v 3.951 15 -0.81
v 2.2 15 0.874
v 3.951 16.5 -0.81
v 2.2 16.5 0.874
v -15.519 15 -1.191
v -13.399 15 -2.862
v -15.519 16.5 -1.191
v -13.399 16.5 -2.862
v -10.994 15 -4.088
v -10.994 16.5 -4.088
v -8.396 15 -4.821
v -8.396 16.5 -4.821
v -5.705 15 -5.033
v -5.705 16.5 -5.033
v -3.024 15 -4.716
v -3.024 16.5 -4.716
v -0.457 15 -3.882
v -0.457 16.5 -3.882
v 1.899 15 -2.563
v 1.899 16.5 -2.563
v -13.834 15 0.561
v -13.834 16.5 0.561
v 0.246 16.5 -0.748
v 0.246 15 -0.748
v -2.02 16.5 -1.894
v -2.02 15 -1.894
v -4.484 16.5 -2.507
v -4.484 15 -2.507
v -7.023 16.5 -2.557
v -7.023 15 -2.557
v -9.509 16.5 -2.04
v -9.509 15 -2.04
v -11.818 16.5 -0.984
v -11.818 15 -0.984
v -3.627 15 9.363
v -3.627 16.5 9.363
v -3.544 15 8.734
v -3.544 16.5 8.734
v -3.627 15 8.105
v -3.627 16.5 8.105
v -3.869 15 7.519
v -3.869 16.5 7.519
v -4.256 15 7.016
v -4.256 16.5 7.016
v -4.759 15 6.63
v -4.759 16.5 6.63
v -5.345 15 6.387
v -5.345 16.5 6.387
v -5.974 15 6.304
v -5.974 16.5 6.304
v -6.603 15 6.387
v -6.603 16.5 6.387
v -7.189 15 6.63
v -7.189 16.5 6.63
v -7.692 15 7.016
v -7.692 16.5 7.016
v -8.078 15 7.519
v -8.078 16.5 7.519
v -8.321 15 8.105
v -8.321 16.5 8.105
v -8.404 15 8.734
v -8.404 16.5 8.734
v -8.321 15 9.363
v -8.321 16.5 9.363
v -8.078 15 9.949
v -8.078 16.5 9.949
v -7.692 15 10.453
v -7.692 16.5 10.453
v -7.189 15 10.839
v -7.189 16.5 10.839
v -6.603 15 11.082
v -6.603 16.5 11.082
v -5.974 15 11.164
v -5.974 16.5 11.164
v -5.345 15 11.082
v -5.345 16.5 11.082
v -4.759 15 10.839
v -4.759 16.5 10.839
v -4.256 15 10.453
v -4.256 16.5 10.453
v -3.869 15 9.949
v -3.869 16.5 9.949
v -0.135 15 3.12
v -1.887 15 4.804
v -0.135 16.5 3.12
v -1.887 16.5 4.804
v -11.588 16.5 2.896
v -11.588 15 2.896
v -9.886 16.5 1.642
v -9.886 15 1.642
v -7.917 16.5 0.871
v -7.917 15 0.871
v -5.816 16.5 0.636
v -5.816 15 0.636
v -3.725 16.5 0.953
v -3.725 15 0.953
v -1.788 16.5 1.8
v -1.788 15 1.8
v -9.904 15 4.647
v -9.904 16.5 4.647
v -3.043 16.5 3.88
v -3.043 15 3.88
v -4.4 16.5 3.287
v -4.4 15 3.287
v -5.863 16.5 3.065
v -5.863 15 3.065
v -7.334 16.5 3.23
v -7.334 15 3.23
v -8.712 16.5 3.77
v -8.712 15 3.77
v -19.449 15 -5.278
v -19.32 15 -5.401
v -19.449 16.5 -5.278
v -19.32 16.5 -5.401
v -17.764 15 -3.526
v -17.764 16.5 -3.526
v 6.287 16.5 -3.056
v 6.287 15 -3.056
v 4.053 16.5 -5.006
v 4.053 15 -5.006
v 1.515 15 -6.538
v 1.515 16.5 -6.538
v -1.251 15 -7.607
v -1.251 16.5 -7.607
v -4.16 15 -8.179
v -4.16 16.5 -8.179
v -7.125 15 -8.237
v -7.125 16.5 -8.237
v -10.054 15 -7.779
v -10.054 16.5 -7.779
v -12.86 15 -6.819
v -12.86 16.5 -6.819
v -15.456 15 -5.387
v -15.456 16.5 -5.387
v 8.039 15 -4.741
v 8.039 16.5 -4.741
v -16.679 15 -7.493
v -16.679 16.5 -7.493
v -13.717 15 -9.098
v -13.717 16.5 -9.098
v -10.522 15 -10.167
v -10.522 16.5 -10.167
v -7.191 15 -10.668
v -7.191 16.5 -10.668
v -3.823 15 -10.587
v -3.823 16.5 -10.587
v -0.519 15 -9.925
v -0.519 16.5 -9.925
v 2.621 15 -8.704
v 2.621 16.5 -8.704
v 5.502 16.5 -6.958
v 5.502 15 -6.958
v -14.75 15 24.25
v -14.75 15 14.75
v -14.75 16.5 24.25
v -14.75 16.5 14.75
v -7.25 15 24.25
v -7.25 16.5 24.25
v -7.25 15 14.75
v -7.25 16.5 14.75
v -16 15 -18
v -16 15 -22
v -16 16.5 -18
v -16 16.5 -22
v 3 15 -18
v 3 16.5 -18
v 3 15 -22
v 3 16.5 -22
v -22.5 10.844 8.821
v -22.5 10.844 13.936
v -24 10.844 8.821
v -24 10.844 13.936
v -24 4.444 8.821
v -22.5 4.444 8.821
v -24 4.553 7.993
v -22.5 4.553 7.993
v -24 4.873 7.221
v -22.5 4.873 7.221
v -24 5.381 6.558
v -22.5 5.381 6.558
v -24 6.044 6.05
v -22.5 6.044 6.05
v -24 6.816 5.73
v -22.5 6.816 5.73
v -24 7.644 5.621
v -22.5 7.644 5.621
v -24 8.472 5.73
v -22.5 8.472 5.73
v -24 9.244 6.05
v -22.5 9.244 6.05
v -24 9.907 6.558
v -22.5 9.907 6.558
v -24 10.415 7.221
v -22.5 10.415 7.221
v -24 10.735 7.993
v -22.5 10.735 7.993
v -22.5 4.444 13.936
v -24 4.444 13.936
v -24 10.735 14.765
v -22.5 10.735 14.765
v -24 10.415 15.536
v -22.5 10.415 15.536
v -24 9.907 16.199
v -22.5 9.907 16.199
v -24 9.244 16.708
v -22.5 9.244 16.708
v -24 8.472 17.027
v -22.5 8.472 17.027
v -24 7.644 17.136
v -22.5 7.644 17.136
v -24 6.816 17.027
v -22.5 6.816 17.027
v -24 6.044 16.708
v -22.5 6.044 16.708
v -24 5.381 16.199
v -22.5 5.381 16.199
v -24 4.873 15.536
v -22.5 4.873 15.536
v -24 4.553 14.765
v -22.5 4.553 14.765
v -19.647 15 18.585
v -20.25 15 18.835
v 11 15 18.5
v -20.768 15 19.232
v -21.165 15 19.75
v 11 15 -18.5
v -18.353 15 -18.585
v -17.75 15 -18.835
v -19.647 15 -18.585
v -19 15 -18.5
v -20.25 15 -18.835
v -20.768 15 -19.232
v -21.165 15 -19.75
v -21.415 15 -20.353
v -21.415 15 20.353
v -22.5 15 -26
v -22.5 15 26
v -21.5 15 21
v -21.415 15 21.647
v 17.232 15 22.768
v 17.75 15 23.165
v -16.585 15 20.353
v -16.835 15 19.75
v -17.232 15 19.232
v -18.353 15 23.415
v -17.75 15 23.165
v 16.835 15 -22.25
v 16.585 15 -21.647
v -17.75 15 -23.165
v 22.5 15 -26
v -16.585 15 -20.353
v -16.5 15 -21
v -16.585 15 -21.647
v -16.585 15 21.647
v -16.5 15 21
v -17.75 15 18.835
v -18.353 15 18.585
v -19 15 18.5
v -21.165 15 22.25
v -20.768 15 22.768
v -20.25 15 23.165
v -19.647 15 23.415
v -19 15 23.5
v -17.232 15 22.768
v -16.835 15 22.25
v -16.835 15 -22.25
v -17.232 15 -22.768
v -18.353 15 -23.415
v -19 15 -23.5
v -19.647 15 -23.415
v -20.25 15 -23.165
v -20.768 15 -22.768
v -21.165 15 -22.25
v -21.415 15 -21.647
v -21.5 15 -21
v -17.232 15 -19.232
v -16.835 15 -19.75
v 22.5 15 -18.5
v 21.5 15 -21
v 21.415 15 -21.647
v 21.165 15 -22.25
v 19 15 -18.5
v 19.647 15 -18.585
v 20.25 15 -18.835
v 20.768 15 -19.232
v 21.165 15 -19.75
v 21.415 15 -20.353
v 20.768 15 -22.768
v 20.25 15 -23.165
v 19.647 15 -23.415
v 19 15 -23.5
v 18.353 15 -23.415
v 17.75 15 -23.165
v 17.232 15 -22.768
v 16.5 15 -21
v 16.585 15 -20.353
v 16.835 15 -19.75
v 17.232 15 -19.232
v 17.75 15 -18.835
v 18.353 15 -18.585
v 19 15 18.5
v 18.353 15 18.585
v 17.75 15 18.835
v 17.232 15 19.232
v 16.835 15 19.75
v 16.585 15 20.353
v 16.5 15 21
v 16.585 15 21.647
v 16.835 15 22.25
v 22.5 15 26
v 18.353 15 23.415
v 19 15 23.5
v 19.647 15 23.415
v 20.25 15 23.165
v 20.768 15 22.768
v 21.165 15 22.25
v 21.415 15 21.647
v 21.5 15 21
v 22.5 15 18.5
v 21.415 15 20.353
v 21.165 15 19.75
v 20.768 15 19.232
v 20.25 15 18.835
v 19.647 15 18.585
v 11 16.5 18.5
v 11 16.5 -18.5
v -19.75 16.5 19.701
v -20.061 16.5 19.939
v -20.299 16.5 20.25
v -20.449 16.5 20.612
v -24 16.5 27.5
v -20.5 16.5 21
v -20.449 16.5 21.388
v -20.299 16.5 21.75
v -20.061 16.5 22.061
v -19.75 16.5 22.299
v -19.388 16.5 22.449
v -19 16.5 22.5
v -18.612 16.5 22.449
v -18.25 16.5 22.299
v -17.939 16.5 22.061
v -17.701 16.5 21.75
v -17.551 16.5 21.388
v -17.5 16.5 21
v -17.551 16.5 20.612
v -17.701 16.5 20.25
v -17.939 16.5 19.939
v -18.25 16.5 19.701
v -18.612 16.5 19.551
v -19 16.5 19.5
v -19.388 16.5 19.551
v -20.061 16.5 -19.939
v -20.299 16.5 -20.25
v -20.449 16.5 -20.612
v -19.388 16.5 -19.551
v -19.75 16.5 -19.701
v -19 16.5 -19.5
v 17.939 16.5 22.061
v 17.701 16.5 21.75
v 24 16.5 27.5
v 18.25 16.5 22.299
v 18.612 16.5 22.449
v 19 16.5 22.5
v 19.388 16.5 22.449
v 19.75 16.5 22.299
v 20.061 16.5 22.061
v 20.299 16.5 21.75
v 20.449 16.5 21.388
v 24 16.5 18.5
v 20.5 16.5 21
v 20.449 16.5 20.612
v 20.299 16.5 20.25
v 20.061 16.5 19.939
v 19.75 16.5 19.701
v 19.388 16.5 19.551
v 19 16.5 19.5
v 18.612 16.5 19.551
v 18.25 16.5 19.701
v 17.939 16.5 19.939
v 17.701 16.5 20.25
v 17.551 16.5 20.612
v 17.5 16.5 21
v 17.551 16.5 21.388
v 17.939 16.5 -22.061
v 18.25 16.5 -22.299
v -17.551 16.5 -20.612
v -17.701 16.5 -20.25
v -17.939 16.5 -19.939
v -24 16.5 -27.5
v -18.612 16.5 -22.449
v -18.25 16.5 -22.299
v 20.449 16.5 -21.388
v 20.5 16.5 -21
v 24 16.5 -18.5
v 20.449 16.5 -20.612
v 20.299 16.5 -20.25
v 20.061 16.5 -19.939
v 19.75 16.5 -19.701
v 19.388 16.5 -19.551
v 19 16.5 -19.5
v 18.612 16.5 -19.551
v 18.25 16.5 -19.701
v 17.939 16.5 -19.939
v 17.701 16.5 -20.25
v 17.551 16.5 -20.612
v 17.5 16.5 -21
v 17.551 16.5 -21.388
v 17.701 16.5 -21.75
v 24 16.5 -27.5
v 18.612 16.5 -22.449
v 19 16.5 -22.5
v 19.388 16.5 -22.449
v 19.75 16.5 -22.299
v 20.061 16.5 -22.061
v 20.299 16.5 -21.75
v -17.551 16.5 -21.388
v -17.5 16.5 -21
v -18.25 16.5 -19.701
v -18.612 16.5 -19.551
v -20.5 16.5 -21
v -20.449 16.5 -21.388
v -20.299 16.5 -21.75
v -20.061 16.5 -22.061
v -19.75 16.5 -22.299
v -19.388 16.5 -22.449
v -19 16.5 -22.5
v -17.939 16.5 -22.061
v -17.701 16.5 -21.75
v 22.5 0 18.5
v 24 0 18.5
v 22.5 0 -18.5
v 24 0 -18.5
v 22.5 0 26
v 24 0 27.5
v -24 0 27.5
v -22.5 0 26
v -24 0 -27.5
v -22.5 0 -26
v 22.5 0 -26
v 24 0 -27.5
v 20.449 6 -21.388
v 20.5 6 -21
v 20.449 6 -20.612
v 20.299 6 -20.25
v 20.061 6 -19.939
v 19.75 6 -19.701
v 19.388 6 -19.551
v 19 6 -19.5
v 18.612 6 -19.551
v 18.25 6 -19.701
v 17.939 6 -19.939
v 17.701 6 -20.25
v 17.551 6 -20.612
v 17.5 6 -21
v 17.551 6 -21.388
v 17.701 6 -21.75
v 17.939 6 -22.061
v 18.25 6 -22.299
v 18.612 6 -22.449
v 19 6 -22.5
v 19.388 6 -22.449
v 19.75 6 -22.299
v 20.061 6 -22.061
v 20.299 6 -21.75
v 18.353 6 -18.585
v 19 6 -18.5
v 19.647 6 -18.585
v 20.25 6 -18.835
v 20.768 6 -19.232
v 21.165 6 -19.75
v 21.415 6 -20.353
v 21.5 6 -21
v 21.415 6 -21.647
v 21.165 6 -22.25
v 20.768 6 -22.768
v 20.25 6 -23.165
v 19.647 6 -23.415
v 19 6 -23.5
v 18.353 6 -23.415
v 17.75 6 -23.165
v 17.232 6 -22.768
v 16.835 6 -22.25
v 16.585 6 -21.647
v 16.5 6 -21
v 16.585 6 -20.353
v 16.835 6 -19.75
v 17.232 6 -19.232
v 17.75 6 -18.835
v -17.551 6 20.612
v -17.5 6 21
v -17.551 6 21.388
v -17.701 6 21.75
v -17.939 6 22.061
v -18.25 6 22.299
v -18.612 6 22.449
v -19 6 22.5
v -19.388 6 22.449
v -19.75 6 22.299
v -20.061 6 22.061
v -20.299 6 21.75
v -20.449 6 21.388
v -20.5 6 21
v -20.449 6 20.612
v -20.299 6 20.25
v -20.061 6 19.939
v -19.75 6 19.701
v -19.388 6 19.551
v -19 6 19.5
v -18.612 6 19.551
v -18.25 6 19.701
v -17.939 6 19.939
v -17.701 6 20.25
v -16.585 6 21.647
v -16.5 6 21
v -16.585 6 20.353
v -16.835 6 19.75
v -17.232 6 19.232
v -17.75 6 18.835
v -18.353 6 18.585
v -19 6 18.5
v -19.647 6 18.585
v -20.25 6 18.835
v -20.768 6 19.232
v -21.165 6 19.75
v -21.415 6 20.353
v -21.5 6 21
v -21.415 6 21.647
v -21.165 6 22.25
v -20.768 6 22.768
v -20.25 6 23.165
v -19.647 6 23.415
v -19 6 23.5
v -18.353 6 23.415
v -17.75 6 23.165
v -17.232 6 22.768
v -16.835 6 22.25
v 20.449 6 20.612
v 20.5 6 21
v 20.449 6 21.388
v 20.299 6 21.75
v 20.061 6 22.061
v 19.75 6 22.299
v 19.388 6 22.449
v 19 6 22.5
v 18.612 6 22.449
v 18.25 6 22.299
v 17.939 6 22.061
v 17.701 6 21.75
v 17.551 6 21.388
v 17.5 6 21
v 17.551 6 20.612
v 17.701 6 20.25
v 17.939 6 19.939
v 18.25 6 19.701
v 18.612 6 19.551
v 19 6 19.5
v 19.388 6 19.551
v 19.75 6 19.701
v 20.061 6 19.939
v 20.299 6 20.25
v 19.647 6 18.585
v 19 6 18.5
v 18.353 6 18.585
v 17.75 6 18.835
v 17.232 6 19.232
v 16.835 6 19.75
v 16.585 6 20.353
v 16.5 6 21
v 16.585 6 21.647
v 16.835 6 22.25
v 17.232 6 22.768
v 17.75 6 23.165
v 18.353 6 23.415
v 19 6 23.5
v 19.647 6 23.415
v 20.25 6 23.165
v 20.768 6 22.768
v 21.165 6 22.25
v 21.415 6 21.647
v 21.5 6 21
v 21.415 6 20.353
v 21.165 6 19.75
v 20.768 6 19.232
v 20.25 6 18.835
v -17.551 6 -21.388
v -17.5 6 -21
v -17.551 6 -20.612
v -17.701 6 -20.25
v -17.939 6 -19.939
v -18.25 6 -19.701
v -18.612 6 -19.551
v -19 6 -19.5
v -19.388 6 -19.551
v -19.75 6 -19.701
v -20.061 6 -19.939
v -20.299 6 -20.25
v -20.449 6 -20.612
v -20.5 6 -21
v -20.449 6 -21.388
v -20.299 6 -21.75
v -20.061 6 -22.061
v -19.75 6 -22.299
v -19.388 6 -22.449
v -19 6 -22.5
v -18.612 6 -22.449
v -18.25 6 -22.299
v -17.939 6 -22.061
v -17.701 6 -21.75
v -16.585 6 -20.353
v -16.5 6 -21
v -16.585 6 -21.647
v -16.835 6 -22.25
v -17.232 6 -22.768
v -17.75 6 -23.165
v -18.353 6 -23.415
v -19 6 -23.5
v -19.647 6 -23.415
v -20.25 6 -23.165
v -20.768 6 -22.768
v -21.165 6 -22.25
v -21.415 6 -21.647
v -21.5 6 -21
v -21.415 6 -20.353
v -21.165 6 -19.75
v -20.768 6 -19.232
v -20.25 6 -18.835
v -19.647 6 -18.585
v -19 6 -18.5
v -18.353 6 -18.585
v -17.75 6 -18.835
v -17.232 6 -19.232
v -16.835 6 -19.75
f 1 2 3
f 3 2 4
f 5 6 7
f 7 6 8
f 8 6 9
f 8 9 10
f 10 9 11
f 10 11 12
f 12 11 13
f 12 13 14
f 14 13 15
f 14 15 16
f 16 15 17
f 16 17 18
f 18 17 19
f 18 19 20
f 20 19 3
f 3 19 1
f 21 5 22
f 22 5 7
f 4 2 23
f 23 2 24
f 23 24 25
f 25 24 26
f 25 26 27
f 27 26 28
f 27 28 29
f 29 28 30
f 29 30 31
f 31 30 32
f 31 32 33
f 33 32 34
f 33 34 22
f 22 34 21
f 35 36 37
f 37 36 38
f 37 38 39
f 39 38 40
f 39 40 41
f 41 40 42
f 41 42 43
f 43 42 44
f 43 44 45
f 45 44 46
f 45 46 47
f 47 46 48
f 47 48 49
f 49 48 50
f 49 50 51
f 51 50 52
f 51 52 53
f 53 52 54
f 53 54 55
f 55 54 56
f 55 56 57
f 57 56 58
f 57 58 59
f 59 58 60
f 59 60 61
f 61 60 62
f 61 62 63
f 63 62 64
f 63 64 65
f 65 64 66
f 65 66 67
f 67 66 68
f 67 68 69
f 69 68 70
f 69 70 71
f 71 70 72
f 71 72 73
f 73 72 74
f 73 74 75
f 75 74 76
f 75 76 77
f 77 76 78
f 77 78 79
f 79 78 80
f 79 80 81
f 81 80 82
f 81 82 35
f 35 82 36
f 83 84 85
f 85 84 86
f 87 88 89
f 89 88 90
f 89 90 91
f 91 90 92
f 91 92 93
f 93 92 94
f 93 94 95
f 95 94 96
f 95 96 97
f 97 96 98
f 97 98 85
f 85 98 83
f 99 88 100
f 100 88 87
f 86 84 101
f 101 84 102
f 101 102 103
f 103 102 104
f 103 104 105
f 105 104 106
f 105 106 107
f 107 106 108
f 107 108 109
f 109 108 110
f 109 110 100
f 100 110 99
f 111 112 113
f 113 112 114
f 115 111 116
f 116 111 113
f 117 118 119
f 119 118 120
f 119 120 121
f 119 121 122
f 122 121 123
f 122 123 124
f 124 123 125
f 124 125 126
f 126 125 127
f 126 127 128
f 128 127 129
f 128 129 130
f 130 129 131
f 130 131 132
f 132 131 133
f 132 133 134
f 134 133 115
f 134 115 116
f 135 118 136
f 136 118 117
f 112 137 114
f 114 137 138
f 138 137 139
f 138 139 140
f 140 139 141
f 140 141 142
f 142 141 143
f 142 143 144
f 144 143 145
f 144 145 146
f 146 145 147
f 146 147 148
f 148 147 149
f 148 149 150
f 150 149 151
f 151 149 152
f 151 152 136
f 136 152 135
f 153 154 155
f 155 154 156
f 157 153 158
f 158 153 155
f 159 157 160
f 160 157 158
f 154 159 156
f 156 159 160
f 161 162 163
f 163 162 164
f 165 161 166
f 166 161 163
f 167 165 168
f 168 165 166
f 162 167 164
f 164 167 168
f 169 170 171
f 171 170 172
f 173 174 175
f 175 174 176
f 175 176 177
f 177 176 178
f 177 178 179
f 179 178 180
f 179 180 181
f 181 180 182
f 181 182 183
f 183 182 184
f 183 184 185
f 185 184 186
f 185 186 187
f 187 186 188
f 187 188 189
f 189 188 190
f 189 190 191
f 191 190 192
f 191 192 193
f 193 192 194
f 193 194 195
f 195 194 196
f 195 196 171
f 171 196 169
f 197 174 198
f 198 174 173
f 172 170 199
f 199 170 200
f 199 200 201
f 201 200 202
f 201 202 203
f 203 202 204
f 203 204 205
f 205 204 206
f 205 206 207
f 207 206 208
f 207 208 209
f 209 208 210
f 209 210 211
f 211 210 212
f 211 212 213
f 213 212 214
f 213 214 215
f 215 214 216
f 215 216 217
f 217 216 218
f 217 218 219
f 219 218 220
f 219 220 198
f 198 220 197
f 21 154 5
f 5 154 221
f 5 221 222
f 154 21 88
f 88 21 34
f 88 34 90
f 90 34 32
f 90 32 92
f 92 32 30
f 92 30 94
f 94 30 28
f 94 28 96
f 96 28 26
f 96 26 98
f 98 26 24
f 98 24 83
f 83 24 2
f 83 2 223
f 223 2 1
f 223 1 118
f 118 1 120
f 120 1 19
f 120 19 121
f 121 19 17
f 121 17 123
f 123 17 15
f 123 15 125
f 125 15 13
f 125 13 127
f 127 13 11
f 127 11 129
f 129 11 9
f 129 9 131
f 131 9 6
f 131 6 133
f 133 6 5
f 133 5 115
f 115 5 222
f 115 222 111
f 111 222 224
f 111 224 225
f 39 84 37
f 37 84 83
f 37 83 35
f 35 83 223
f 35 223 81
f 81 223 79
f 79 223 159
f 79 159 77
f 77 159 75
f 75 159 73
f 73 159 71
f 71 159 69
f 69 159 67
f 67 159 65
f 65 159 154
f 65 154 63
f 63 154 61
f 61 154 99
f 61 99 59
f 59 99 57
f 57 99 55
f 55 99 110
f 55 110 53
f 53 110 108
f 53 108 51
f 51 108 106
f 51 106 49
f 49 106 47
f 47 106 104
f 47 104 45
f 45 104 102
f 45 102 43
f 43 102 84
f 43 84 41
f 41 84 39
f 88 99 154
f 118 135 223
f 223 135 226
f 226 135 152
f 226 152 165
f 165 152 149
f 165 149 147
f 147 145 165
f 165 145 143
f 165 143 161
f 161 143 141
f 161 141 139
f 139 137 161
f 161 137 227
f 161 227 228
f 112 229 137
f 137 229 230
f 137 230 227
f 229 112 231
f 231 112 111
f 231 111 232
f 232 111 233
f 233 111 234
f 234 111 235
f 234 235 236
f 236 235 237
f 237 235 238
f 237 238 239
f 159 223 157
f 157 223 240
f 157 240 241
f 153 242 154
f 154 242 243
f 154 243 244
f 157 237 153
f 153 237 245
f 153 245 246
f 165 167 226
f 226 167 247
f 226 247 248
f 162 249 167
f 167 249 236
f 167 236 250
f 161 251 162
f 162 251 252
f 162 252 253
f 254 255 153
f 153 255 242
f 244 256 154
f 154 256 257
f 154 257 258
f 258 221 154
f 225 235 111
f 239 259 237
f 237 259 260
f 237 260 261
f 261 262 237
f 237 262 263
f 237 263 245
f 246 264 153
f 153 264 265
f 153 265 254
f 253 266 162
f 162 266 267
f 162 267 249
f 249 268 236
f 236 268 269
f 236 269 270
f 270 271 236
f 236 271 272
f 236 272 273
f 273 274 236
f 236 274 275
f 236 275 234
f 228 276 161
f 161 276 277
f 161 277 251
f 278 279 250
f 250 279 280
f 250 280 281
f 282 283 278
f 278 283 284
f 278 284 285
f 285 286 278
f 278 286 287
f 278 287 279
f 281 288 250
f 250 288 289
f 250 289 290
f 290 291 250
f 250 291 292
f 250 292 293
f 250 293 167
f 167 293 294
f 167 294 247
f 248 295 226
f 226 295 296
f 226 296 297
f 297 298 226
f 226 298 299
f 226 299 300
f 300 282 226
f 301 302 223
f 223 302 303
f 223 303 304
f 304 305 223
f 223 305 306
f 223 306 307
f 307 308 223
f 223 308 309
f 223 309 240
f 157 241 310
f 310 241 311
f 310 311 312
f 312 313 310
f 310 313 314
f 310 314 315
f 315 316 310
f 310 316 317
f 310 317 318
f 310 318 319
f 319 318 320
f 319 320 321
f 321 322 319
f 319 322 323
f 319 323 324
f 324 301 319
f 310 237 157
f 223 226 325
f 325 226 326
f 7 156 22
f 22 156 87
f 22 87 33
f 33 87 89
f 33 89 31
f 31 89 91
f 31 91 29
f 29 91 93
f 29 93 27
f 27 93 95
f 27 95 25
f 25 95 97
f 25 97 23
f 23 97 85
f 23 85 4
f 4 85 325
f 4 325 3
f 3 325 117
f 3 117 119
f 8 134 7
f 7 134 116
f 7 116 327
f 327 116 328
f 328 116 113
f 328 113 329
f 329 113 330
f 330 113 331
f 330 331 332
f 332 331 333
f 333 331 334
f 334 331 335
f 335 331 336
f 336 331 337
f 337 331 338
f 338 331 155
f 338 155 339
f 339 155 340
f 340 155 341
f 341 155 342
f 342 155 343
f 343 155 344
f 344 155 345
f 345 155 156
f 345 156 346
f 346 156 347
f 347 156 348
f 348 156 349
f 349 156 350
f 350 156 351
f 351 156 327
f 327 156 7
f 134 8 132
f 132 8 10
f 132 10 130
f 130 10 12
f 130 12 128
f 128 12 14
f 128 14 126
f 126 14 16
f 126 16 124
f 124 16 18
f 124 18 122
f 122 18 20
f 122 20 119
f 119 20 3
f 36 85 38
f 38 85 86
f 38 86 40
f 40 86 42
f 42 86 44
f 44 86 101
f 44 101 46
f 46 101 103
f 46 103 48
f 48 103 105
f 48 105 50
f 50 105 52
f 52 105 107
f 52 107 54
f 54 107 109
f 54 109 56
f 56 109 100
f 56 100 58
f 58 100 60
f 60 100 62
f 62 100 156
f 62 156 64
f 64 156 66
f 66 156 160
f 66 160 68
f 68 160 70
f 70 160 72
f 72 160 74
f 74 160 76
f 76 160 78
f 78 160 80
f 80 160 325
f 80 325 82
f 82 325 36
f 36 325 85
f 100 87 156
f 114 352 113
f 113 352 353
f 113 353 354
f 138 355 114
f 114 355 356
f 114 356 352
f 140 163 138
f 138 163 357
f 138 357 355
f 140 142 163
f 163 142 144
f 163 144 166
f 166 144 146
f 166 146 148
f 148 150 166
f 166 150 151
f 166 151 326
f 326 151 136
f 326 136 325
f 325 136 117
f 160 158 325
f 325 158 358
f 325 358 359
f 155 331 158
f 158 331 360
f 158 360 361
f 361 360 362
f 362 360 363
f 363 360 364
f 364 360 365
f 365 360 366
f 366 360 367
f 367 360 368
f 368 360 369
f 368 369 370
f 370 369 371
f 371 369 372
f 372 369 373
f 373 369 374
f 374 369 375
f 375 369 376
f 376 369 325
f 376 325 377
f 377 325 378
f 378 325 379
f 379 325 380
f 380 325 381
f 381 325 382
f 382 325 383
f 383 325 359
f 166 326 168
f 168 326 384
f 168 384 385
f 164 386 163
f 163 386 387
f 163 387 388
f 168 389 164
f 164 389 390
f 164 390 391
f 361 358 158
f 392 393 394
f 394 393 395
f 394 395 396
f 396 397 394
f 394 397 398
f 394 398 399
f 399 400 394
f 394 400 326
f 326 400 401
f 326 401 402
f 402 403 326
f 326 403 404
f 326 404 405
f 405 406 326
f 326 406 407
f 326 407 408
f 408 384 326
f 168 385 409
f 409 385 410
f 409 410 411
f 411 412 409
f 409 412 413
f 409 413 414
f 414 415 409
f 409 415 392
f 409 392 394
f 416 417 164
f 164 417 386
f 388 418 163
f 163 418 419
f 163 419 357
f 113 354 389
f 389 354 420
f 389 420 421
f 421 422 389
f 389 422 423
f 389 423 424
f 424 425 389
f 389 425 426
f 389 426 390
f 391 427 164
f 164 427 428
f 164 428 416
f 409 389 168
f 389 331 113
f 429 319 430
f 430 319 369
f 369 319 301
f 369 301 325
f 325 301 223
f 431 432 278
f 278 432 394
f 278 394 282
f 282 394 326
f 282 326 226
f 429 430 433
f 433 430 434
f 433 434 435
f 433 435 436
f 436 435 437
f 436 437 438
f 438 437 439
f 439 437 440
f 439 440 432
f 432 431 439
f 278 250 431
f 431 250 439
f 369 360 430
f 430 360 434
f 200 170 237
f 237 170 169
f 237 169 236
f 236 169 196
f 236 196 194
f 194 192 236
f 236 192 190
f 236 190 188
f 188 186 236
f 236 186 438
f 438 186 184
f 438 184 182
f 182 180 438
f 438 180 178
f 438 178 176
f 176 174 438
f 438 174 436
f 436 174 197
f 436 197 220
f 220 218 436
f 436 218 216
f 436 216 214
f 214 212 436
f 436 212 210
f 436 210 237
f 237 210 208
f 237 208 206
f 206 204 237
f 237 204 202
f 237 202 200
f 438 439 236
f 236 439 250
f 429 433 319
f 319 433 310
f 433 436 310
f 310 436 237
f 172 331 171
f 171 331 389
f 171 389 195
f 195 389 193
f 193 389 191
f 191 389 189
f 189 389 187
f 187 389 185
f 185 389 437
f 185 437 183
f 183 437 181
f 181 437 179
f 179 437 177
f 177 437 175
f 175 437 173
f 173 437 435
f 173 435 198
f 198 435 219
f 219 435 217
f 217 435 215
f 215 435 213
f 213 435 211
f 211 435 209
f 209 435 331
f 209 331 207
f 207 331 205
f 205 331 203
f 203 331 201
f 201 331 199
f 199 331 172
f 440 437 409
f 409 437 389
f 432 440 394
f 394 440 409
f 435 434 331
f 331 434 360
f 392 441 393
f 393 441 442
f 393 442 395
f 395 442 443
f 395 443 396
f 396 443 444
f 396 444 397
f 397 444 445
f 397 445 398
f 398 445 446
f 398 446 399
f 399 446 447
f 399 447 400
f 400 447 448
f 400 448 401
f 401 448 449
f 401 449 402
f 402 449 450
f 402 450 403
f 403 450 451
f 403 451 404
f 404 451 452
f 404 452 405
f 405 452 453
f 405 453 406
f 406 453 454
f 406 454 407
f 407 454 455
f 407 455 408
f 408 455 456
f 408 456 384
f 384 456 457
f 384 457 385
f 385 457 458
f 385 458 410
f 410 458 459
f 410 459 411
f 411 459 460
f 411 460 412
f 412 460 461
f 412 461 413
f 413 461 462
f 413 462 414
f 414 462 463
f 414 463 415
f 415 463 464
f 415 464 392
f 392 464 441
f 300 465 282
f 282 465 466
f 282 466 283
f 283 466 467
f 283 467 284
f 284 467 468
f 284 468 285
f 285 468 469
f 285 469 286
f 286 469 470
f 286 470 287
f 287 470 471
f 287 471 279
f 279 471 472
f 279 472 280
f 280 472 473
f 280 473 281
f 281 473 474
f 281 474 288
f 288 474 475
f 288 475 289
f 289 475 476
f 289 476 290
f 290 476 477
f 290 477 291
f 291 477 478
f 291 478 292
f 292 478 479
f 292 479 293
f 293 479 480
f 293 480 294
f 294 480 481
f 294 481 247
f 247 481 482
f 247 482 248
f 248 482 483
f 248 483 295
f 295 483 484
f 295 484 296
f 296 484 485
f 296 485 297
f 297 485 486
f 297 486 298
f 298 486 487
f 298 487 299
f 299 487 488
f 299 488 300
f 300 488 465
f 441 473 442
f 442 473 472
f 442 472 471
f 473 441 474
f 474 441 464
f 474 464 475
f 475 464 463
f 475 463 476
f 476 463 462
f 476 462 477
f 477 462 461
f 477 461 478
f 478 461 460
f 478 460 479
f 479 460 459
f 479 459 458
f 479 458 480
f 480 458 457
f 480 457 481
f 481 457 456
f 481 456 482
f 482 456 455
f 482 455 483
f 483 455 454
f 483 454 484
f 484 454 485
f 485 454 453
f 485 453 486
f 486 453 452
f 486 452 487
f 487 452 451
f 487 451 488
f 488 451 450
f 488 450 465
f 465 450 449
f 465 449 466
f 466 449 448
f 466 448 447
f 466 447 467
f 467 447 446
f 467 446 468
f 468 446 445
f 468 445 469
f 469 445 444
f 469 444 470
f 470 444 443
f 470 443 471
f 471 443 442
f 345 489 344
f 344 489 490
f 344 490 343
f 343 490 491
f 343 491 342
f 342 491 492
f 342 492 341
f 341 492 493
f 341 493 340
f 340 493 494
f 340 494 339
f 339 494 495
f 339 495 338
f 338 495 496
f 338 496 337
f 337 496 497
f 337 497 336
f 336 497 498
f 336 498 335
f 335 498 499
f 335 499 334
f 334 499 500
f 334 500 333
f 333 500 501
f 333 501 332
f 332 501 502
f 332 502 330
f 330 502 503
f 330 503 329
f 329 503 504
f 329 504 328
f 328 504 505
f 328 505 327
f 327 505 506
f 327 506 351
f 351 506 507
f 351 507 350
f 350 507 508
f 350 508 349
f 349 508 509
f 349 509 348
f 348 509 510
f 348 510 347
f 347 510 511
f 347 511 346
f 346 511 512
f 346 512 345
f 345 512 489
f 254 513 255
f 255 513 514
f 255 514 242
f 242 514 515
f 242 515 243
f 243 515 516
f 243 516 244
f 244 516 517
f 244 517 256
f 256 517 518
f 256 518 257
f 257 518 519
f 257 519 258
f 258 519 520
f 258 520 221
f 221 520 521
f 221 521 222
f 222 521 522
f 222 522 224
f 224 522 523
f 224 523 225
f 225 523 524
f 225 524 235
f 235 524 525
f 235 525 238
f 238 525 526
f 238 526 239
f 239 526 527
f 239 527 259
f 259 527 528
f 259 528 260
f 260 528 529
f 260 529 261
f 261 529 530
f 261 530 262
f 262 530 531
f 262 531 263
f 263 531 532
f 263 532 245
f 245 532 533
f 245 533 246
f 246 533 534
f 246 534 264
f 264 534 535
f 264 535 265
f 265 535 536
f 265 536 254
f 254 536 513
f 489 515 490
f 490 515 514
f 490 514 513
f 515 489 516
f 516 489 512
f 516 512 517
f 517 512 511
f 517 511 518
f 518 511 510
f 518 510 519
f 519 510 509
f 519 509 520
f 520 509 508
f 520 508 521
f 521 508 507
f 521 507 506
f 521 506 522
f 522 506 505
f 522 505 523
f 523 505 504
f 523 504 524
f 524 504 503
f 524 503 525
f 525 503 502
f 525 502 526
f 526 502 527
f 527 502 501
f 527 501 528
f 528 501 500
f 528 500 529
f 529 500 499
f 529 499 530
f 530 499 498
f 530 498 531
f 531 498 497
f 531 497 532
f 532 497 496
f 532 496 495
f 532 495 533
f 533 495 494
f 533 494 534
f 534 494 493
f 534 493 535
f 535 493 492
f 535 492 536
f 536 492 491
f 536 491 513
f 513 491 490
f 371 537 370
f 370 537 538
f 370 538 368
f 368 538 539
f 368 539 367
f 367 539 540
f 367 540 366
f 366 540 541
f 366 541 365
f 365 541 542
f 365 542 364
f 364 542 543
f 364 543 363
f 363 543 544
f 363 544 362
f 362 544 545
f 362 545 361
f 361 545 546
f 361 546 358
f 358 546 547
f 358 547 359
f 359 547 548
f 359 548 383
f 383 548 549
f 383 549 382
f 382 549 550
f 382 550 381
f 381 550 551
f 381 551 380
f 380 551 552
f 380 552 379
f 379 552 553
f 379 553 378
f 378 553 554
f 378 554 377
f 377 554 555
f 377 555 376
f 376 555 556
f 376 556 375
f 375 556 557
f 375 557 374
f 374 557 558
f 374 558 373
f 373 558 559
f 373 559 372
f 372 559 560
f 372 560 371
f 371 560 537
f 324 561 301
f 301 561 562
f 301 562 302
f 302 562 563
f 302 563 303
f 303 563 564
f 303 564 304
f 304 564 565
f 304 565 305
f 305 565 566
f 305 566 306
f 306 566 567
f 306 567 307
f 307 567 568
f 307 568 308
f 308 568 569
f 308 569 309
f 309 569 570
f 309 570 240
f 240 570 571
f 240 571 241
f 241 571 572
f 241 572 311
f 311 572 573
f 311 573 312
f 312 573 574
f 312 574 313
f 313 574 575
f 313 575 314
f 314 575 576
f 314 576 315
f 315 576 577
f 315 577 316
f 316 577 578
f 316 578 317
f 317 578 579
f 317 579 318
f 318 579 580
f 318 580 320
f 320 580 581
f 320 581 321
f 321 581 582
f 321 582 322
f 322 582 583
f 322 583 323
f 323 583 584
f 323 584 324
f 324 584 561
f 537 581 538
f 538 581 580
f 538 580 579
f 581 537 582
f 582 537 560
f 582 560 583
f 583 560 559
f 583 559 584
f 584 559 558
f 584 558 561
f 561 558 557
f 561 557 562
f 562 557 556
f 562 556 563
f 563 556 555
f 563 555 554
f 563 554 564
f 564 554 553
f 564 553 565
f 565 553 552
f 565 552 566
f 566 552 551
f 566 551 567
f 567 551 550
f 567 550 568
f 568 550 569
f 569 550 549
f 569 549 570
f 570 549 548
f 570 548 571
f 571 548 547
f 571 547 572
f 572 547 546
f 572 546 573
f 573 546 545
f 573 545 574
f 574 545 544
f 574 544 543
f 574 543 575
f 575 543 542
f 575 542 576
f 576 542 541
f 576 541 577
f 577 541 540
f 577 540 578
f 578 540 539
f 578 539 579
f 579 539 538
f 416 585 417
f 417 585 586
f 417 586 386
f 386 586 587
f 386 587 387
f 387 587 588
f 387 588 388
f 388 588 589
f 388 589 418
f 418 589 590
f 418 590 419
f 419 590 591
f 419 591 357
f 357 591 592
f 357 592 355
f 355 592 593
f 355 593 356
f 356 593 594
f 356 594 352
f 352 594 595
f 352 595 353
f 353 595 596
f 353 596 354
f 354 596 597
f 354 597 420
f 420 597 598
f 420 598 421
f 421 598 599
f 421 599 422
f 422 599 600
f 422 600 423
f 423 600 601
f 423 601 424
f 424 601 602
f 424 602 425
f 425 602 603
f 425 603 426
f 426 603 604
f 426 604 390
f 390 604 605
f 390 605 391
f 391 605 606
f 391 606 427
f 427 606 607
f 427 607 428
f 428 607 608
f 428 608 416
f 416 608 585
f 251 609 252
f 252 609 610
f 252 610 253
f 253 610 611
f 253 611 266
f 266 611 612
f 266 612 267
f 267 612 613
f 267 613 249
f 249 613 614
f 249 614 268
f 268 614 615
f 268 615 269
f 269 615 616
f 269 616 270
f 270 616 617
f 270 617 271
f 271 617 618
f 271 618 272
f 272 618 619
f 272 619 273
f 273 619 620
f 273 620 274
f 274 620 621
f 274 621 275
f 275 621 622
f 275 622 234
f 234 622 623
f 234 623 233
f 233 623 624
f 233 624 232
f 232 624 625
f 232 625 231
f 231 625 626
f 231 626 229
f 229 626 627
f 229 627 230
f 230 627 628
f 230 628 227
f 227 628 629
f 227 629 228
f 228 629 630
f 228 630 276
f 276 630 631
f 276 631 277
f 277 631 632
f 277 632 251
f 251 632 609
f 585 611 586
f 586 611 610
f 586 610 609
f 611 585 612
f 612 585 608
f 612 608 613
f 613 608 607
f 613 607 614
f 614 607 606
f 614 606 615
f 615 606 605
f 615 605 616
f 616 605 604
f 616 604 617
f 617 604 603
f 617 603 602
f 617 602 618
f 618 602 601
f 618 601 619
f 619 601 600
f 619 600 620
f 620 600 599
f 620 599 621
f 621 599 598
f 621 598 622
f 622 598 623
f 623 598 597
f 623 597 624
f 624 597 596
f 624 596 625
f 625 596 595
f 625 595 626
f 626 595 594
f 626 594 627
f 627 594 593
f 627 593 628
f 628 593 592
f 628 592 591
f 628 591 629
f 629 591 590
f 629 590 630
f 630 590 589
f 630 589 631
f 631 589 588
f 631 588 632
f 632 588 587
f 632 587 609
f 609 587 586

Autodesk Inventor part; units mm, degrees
ref_plane "YZ Plane" through (0, 0, 0) normal (1, 0, 0) x (0, 1, 0)
ref_plane "XZ Plane" through (0, 0, 0) normal (0, 1, 0) x (-1, 0, 0)
ref_plane "XY Plane" through (0, 0, 0) normal (0, 0, 1) x (1, 0, 0)
sketch "Sketch1" plane through (0, 0, 0) normal (0, 1, 0) x (-1, 0, 0)
  point P0 (0, 0)
sketch "Sketch2" plane through (0, 0, 0) normal (0, 1, 0) x (-1, 0, 0)
  line L0 (-24, 27.5) -> (24, 27.5)
  line L1 (24, 27.5) -> (24, -27.5)
  line L2 (24, -27.5) -> (-24, -27.5)
  line L3 (-24, -27.5) -> (-24, 27.5)
  line L4 (22.5, 26) -> (-22.5, 26)
  line L5 (-22.5, 26) -> (-22.5, -26)
  line L6 (-22.5, -26) -> (22.5, -26)
  line L7 (22.5, -26) -> (22.5, 26)
  dimension "d1" = 55
extrude "Extrusion1" add sketch "Sketch2" along normal blind 6
sketch "Sketch3" plane through (0, 6, 0) normal (0, 1, 0) x (1, 0, 0)
  circle A0 centre (19, -21) radius 2.5
  circle A1 centre (-19, -21) radius 2.5
  circle A2 centre (-19, 21) radius 2.5
  circle A3 centre (19, 21) radius 2.5
  circle A4 centre (-19, -21) radius 1.5
  circle A5 centre (-19, 21) radius 1.5
  circle A6 centre (19, 21) radius 1.5
  circle A7 centre (19, -21) radius 1.5
  line L0 (-22.5, -26) -> (22.5, -26)
  line L1 (22.5, -26) -> (22.5, 26)
  line L2 (22.5, 26) -> (-22.5, 26)
  line L3 (-22.5, 26) -> (-22.5, -26)
  line L4 (-24, -27.5) -> (24, -27.5)
  line L5 (24, -27.5) -> (24, 27.5)
  line L6 (24, 27.5) -> (-24, 27.5)
  line L7 (-24, 27.5) -> (-24, -27.5)
  dimension "d16" = 3
  dimension "d17" = 3
  dimension "d18" = 3
extrude "Extrusion2" add sketch "Sketch3" along normal blind 9
sketch "Sketch4" plane through (24, 0, 27.5) normal (1, 0, 0) x (0, 0, -1)
  line L0 (9, 6) -> (9, 15) projected
  line L1 (9, 15) -> (46, 15)
  line L2 (55, 0) -> (0, 0) projected
  line L3 (46, 6) -> (46, 15)
  line L4 (46, 15) -> (9, 15)
  line L5 (9, 15) -> (9, 6)
  line L6 (9, 0) -> (46, 0)
  line L7 (46, 0) -> (46, 15)
  line L8 (46, 15) -> (9, 15)
  line L9 (9, 15) -> (9, 0)
  point P0 (27.5, 0)
extrude "Extrusion3" cut sketch "Sketch4" against normal up to surface (1.5 mm away)
sketch "Sketch5" plane through (0, 15, 0) normal (0, 1, 0) x (1, 0, 0)
  line L0 (-24, -27.5) -> (24, -27.5) projected
  line L1 (-24, 27.5) -> (-24, -27.5) projected
  line L2 (24, -27.5) -> (-24, -27.5)
  line L3 (-24, -27.5) -> (-24, 27.5)
  line L4 (-24, 27.5) -> (24, 27.5)
  line L5 (22.5, -18.5) -> (24, -18.5) projected
  line L6 (24, -18.5) -> (11, -18.5)
  line L7 (24, 18.5) -> (24, 27.5) projected
  line L8 (24, 18.5) -> (11, 18.5)
  line L9 (11, 18.5) -> (11, -18.5)
  line L10 (24, 27.5) -> (24, 18.5)
  line L11 (24, -18.5) -> (24, -27.5)
  circle A0 centre (-19, -21) radius 1.5 projected
  circle A1 centre (-19, -21) radius 1.5
  circle A2 centre (-19, 21) radius 1.5 projected
  circle A3 centre (-19, 21) radius 1.5
  circle A4 centre (19, 21) radius 1.5 projected
  circle A5 centre (19, 21) radius 1.5
  circle A6 centre (19, -21) radius 1.5 projected
  circle A7 centre (19, -21) radius 1.5
  point P0 (0, 0)
extrude "Extrusion4" add sketch "Sketch5" along normal blind 1.5
sketch "Sketch6" plane through (-24, 0, -27.5) normal (-1, 0, 0) x (0, 0, 1)
  line L0 (41.4364, 10.844) -> (36.321, 10.844)
  line L1 (36.321, 4.444) -> (41.4364, 4.444)
  arc A0 (41.4364, 4.444) -> (41.4364, 10.844) centre (41.4364, 7.644) ccw
  arc A1 (36.321, 10.844) -> (36.321, 4.444) centre (36.321, 7.644) ccw
  point P0 (27.5, 0)
extrude "Extrusion5" cut sketch "Sketch6" against normal up to surface (1.5 mm away)
sketch "Sketch7" plane through (0, 16.5, 0) normal (0, 1, 0) x (1, 0, 0)
  circle A0 centre (-19, 21) radius 1.5 projected
  line L0 (3, 18) -> (-16, 18)
  line L1 (-16, 18) -> (-16, 22)
  line L2 (-16, 22) -> (3, 22)
  line L3 (3, 22) -> (3, 18)
  point P0 (0, 0)
  dimension "d37" = 19
  dimension "d38" = 4
extrude "Extrusion6" cut sketch "Sketch7" against normal through all contours L0 L1 L2 L3
sketch "Sketch8" plane through (0, 16.5, 0) normal (0, 1, 0) x (1, 0, 0)
  line L0 (-14.75, -24.25) -> (-7.25, -24.25)
  line L1 (-7.25, -24.25) -> (-7.25, -14.75)
  line L2 (-7.25, -14.75) -> (-14.75, -14.75)
  line L3 (-14.75, -14.75) -> (-14.75, -24.25)
  point P0 (0, 0)
  dimension "d44" = 7.5
  dimension "d45" = 9.5
extrude "Extrusion7" cut sketch "Sketch8" against normal through all
sketch "Sketch9" plane through (0, 16.5, 0) normal (0, 1, 0) x (1, 0, 0)
  circle A0 centre (-5.9739, -8.7344) radius 2.43
  arc A1 (-1.887, -4.8042) -> (-9.9041, -4.6475) centre (-5.9739, -8.7344) ccw
  arc A2 (-0.1355, -3.1199) -> (-11.5884, -2.8959) centre (-5.9739, -8.7344) ccw
  arc A3 (2.1999, -0.874) -> (-13.8342, -0.5606) centre (-5.9739, -8.7344) ccw
  arc A4 (3.9514, 0.8103) -> (-15.5186, 1.1909) centre (-5.9739, -8.7344) ccw
  arc A5 (6.2868, 3.0561) -> (-17.7644, 3.5263) centre (-5.9739, -8.7344) ccw
  arc A6 (8.0389, 4.741) -> (-19.3203, 5.4014) centre (-5.9739, -8.7344) ccw
  line L0 (-19.3203, 5.4014) -> (-19.4487, 5.2778)
  line L1 (-19.4487, 5.2778) -> (-19.3445, 5.1695)
  line L2 (-17.7644, 3.5263) -> (-19.3445, 5.1695)
  line L3 (-13.8342, -0.5606) -> (-15.5186, 1.1909)
  line L4 (-9.9041, -4.6475) -> (-11.5884, -2.8959)
  line L5 (-1.887, -4.8042) -> (-0.1355, -3.1199)
  line L6 (2.1999, -0.874) -> (3.9514, 0.8103)
  line L7 (6.2868, 3.0561) -> (8.0389, 4.741)
  point P0 (0, 0)
  dimension "d48" = 4.86
extrude "Extrusion8" cut sketch "Sketch9" against normal through all
properties part number "Box2_Top"
